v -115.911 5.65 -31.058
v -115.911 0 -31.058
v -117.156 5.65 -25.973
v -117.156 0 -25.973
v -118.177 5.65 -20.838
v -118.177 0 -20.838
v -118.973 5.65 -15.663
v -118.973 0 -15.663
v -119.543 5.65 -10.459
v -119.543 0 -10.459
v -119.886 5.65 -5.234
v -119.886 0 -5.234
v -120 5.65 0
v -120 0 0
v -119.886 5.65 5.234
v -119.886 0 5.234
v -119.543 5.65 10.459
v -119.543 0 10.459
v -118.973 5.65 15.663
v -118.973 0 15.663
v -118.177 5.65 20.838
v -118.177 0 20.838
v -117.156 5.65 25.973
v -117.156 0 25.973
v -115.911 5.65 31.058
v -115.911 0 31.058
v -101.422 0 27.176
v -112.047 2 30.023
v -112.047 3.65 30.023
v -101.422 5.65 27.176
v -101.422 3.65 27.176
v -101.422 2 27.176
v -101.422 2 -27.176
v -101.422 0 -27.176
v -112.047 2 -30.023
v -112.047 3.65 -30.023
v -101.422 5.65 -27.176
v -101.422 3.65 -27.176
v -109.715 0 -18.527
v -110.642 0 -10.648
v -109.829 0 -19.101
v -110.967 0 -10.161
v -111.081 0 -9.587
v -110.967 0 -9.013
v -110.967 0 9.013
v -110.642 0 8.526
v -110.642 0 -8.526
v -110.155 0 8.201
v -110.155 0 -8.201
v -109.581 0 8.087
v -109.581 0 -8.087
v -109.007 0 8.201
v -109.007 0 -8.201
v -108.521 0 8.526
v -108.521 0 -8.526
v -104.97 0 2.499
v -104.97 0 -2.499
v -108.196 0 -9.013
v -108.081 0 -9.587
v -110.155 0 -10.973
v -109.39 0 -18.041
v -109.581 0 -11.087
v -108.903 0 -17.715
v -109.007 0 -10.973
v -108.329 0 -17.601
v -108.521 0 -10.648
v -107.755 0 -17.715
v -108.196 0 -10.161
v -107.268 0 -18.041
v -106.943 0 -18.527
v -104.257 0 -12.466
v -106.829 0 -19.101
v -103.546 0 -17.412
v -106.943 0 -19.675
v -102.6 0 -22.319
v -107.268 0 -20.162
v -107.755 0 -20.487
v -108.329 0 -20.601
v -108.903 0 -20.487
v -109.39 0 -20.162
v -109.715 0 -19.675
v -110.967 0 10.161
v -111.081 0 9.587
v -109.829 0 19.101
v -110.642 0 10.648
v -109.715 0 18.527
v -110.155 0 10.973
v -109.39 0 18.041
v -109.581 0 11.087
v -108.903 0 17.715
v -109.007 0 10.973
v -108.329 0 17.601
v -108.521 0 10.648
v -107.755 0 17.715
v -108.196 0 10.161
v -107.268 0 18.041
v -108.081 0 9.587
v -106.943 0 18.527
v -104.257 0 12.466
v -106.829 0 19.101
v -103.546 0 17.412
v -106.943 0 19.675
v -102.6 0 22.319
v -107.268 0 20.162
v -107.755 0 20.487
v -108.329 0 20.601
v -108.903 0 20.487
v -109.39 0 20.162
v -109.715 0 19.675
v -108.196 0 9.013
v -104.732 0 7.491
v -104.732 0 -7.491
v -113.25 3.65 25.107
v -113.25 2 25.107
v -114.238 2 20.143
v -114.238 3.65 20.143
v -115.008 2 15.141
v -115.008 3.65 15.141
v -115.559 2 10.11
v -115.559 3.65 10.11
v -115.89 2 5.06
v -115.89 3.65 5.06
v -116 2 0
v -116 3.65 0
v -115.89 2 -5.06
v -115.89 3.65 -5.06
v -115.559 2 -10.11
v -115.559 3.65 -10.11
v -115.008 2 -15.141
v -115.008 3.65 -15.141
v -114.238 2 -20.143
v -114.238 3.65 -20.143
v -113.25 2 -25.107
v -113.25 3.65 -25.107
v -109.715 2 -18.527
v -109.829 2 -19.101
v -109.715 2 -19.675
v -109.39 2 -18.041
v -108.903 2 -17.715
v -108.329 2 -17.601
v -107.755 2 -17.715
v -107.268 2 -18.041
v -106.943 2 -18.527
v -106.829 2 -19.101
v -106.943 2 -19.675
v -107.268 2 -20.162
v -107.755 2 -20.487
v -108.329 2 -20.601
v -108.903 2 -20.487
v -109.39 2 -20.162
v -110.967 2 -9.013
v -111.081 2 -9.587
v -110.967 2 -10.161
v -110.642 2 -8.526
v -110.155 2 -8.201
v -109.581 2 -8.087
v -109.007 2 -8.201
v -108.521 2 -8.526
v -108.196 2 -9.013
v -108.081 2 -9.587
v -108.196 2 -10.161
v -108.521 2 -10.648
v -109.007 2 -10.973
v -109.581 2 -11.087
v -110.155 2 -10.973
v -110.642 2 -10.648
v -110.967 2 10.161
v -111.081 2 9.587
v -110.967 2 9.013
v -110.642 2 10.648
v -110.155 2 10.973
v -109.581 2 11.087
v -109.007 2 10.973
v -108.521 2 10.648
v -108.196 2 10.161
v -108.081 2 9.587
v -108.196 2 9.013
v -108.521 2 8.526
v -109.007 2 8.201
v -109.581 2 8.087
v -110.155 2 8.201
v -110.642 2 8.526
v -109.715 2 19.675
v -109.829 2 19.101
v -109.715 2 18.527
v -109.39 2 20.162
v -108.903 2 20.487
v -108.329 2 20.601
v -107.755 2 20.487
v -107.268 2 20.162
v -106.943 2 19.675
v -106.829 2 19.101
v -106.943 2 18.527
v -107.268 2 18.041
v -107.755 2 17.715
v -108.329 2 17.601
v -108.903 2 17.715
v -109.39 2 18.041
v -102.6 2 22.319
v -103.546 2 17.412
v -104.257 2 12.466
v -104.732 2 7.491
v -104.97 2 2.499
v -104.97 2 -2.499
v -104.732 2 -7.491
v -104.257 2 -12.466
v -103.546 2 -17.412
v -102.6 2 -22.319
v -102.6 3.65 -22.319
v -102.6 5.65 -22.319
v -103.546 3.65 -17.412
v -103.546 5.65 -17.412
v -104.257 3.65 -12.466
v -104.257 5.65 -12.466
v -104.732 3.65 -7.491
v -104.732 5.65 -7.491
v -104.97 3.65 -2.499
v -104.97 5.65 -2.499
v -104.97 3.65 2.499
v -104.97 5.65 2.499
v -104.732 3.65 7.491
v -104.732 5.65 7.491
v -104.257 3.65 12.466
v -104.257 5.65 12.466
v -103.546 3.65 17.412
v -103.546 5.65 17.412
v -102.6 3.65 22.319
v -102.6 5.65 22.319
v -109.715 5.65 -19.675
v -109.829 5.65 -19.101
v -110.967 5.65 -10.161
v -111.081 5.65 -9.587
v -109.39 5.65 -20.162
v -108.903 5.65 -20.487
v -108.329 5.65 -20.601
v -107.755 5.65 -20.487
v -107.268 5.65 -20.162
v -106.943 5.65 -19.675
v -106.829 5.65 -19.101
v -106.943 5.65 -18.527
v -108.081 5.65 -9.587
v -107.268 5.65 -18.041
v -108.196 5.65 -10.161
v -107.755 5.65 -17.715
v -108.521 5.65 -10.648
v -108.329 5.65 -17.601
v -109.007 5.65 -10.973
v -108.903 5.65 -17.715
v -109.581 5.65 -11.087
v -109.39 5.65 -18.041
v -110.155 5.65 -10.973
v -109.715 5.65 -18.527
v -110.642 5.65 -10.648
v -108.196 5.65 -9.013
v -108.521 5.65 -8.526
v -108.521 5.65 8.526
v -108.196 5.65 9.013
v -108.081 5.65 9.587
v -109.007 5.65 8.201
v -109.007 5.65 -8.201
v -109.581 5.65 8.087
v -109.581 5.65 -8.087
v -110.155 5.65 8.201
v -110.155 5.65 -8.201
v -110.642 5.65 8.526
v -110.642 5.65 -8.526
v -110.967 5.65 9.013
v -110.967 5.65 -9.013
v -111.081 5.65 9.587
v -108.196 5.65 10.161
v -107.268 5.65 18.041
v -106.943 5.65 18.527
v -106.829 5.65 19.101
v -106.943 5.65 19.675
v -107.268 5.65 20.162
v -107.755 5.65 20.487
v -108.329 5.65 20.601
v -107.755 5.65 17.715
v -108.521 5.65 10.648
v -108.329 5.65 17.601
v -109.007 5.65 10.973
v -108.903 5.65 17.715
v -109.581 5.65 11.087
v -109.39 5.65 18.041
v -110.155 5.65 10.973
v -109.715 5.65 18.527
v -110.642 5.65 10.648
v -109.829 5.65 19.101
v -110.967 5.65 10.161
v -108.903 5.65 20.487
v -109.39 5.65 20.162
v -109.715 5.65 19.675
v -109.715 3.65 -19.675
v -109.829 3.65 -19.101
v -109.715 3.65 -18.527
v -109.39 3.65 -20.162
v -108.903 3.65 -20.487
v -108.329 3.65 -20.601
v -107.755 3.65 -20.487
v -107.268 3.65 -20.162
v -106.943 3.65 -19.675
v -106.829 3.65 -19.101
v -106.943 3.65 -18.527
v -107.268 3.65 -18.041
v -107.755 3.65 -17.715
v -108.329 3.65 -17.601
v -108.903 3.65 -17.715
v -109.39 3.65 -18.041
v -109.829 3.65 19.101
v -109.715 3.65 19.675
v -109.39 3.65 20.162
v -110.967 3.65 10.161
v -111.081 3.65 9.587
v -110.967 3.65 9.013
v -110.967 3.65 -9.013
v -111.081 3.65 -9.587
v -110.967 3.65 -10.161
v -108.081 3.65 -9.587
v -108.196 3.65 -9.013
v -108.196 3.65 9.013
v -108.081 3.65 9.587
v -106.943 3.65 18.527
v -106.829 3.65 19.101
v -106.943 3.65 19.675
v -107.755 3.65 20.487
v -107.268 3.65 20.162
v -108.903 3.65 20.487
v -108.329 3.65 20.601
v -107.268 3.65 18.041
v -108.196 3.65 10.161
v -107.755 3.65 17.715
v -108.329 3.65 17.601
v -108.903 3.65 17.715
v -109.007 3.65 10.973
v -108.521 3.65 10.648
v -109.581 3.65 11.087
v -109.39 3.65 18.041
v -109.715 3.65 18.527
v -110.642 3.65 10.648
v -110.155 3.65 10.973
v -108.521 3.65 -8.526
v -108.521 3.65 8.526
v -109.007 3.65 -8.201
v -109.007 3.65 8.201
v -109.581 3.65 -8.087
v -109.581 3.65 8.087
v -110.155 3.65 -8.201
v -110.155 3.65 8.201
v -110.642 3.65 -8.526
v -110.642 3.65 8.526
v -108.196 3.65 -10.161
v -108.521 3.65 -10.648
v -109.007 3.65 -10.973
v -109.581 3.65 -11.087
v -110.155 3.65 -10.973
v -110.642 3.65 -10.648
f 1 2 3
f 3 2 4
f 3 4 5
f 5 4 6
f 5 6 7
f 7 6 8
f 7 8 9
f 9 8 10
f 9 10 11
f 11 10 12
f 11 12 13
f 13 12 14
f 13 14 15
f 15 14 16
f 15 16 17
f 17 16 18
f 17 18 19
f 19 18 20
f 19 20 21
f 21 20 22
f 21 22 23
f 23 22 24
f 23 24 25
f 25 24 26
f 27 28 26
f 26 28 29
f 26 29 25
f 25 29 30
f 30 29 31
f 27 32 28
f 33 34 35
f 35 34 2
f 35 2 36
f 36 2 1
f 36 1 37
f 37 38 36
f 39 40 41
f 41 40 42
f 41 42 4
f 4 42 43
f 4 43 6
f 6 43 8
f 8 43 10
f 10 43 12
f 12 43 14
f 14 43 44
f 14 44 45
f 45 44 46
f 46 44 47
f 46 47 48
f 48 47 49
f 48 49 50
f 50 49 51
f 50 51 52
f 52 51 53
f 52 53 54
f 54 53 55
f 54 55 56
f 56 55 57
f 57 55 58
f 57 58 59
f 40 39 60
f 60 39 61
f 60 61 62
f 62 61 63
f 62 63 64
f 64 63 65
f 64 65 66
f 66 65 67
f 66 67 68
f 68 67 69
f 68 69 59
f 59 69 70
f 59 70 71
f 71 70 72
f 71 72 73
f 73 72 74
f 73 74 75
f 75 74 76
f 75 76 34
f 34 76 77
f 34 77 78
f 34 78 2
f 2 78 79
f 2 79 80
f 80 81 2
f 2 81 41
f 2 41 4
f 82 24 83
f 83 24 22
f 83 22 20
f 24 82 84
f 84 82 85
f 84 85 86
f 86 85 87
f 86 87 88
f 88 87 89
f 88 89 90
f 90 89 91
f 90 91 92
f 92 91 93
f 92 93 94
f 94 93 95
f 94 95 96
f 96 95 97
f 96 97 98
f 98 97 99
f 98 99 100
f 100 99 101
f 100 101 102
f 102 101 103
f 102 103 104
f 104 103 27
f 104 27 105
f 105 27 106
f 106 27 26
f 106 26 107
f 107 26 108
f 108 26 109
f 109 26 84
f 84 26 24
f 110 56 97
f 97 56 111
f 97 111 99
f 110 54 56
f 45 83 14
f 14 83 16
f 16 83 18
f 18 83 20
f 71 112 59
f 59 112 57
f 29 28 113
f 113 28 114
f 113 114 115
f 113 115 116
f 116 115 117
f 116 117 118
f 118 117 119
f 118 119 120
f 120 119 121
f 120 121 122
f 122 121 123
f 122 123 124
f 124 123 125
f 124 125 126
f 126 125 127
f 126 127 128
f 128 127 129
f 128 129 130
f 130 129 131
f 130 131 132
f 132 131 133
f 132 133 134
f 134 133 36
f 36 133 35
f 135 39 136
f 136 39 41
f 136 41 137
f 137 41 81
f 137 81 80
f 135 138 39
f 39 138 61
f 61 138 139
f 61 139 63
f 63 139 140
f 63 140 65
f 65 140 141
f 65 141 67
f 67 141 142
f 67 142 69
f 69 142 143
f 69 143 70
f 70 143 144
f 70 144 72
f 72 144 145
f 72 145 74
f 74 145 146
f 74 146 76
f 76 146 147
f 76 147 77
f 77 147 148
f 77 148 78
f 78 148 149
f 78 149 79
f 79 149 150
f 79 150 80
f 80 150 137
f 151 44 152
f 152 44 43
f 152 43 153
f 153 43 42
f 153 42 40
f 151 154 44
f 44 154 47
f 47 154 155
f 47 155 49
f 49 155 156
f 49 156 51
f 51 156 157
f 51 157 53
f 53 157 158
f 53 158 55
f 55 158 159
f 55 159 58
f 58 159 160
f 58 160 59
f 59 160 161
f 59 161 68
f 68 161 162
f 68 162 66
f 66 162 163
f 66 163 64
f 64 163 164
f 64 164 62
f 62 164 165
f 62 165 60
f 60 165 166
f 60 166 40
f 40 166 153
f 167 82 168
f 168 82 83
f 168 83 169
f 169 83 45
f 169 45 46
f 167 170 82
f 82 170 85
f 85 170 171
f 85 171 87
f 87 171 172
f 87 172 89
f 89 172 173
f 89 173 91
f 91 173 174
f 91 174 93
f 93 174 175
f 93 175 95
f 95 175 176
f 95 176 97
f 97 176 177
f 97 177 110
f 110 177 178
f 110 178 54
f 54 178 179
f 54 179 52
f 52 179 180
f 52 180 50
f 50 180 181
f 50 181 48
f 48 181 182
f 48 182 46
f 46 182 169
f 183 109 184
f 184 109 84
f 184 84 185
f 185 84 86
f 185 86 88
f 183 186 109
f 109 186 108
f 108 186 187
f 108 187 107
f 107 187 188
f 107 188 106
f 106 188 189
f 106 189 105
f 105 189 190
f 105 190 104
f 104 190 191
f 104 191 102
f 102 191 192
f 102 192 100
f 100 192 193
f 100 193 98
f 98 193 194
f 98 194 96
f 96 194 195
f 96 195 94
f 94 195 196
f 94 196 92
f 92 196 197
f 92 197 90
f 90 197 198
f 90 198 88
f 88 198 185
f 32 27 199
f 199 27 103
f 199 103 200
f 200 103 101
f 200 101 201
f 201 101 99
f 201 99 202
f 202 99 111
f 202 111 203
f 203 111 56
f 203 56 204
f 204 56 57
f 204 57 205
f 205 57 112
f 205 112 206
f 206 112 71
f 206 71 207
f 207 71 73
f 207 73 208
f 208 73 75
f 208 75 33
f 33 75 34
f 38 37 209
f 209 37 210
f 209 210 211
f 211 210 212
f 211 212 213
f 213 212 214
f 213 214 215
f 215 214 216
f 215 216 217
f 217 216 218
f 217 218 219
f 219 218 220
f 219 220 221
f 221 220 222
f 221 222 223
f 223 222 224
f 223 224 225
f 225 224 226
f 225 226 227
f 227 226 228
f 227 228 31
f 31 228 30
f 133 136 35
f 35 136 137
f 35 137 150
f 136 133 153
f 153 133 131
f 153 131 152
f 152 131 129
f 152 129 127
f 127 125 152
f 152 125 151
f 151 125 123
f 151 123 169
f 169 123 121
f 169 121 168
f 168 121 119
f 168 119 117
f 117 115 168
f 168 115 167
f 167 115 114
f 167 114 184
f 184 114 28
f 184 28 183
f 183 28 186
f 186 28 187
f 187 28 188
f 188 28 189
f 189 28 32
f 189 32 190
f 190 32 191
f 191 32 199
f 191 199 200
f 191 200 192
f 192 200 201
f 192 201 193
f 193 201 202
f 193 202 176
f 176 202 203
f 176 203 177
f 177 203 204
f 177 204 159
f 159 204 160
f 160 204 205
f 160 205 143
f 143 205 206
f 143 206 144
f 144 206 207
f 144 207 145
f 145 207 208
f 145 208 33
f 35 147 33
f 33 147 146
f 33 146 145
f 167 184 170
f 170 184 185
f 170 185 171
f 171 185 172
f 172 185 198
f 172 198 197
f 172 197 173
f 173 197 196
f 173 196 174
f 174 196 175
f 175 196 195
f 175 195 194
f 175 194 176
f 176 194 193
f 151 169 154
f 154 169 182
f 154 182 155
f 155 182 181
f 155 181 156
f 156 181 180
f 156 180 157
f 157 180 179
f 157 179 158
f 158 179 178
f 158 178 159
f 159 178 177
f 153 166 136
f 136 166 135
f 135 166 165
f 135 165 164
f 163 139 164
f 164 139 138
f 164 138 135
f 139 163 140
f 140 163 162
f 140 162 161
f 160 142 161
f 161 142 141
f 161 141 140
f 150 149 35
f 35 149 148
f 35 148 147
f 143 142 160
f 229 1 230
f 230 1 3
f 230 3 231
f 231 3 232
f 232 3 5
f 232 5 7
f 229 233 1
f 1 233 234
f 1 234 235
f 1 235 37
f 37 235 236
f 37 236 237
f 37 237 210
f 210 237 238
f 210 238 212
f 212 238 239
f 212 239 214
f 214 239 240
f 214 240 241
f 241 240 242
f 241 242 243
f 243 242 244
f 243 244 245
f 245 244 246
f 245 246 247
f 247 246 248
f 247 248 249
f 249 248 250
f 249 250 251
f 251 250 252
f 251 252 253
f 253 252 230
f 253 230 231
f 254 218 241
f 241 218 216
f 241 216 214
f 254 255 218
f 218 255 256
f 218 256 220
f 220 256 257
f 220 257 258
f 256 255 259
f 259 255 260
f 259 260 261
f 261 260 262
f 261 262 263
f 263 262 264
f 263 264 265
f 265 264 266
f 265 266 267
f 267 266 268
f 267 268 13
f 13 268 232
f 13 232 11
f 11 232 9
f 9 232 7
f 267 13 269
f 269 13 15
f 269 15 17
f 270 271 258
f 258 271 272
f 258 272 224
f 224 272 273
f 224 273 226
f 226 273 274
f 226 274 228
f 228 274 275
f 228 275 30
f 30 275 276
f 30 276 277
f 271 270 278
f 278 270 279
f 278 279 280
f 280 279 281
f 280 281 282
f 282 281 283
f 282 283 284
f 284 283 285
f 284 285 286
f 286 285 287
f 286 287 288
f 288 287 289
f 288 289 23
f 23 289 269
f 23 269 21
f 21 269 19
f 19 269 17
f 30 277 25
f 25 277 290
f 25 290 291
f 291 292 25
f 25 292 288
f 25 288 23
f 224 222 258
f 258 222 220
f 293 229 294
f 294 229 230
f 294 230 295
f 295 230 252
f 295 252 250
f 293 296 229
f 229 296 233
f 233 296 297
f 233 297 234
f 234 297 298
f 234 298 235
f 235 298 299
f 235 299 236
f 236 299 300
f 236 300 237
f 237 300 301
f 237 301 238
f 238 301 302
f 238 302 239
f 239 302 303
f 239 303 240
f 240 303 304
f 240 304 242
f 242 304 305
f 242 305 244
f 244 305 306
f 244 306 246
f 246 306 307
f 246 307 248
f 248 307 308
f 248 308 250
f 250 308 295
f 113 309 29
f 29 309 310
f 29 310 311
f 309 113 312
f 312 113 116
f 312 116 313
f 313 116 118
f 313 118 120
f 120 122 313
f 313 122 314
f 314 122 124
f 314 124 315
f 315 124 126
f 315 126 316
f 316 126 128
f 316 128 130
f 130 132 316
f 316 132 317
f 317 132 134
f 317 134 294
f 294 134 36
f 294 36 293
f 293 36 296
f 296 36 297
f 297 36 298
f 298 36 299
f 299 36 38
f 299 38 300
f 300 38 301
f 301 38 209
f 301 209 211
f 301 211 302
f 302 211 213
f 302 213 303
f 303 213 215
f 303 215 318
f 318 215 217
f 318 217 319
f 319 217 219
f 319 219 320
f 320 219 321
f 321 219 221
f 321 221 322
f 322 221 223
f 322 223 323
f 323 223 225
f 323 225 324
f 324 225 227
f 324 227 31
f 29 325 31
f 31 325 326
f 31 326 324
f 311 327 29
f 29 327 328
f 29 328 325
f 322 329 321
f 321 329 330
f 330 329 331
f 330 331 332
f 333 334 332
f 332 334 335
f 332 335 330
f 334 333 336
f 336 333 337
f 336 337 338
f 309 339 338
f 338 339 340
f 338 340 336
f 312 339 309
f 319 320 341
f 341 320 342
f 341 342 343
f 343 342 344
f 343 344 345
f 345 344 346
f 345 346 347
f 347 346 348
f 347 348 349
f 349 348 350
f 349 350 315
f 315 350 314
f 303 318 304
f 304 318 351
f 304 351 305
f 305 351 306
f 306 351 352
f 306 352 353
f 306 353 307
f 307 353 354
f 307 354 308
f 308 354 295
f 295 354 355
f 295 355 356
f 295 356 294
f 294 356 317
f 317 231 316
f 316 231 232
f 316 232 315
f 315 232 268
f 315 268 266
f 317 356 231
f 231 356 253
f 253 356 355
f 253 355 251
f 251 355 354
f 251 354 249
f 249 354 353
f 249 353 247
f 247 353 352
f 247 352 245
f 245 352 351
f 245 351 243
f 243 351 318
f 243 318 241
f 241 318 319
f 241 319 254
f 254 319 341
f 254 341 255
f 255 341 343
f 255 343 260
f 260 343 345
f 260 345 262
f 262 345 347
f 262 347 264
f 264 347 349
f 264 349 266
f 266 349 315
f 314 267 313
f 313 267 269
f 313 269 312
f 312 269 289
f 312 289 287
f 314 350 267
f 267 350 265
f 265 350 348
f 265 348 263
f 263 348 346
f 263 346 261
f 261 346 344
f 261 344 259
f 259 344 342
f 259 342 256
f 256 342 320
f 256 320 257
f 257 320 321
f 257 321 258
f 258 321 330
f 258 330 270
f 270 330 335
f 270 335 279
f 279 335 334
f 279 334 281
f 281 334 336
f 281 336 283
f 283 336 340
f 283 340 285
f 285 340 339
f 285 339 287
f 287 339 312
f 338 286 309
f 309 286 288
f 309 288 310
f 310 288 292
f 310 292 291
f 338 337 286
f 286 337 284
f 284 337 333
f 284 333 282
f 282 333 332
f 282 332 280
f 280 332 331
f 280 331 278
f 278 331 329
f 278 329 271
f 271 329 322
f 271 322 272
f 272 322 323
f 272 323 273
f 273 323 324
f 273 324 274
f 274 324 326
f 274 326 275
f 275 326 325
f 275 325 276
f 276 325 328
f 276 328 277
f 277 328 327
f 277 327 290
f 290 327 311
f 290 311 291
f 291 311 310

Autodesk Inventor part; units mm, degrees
ref_plane "YZ Plane" through (0, 0, 0) normal (1, 0, 0) x (0, 1, 0)
ref_plane "XZ Plane" through (0, 0, 0) normal (0, 1, 0) x (-1, 0, 0)
ref_plane "XY Plane" through (0, 0, 0) normal (0, 0, 1) x (1, 0, 0)
sketch "スケッチ1" plane through (0, 0, 0) normal (0, 1, 0) x (-1, 0, 0)
  circle A0 centre (0, 0) radius 105
  circle A1 centre (0, 0) radius 116
  line L0 (0, 0) -> (112.0474, 30.023)
  line L1 (0, 0) -> (112.0474, -30.023)
  line L2 (168, 0) -> (-168, 0) projected
  circle A2 centre (0, 0) radius 110 construction
  line L3 (0, 0) -> (108.3289, 19.1013) construction
  line L4 (109.5814, 9.5871) -> (0, 0) construction
  line L5 (109.5814, -9.5871) -> (0, 0) construction
  line L6 (0, 0) -> (108.3289, -19.1013) construction
  circle A3 centre (109.5814, 9.5871) radius 1.5
  circle A4 centre (108.3289, 19.1013) radius 1.5
  circle A5 centre (109.5814, -9.5871) radius 1.5
  circle A6 centre (108.3289, -19.1013) radius 1.5
  circle A7 centre (0, 0) radius 120
  line L7 (112.0474, 30.023) -> (115.9111, 31.0583)
  line L8 (112.0474, -30.023) -> (115.9111, -31.0583)
  point P0 (101.4222, -27.176)
  point P1 (101.4222, 27.176)
  dimension "d0" = 210
  dimension "d1" = 232
  dimension "d2" = 15
  dimension "d3" = 15
  dimension "d4" = 220
  dimension "d5" = 5
  dimension "d6" = 5
  dimension "d7" = 5
  dimension "d8" = 5
  dimension "d9" = 3
  dimension "d10" = 240
extrude "押し出し1" add sketch "スケッチ1" along normal blind 2 contours L2 A1 L1 A0 | A0 L0 A1 L2 | L2 A7 L8 A1 | A1 L7 A7 L2 picked at (107.2059, -25.9298) picked at (107.2059, 25.9298) picked at (115.3785, -27.3064) picked at (115.3785, 27.3064)
extrude "押し出し2" add sketch "スケッチ1" along normal blind 2.825 contours L2 A7 L8 A1 | A1 L7 A7 L2 picked at (115.3785, -27.3064) picked at (115.3785, 27.3064)
mirror "ミラー1" about plane through (-116.0237, 2.825, 0) normal (0, 1, 0)
equation "\"d6\" = d5"
equation "\"d7\" = d5"
equation "\"d8\" = d5"
properties part number "plate_cover"
